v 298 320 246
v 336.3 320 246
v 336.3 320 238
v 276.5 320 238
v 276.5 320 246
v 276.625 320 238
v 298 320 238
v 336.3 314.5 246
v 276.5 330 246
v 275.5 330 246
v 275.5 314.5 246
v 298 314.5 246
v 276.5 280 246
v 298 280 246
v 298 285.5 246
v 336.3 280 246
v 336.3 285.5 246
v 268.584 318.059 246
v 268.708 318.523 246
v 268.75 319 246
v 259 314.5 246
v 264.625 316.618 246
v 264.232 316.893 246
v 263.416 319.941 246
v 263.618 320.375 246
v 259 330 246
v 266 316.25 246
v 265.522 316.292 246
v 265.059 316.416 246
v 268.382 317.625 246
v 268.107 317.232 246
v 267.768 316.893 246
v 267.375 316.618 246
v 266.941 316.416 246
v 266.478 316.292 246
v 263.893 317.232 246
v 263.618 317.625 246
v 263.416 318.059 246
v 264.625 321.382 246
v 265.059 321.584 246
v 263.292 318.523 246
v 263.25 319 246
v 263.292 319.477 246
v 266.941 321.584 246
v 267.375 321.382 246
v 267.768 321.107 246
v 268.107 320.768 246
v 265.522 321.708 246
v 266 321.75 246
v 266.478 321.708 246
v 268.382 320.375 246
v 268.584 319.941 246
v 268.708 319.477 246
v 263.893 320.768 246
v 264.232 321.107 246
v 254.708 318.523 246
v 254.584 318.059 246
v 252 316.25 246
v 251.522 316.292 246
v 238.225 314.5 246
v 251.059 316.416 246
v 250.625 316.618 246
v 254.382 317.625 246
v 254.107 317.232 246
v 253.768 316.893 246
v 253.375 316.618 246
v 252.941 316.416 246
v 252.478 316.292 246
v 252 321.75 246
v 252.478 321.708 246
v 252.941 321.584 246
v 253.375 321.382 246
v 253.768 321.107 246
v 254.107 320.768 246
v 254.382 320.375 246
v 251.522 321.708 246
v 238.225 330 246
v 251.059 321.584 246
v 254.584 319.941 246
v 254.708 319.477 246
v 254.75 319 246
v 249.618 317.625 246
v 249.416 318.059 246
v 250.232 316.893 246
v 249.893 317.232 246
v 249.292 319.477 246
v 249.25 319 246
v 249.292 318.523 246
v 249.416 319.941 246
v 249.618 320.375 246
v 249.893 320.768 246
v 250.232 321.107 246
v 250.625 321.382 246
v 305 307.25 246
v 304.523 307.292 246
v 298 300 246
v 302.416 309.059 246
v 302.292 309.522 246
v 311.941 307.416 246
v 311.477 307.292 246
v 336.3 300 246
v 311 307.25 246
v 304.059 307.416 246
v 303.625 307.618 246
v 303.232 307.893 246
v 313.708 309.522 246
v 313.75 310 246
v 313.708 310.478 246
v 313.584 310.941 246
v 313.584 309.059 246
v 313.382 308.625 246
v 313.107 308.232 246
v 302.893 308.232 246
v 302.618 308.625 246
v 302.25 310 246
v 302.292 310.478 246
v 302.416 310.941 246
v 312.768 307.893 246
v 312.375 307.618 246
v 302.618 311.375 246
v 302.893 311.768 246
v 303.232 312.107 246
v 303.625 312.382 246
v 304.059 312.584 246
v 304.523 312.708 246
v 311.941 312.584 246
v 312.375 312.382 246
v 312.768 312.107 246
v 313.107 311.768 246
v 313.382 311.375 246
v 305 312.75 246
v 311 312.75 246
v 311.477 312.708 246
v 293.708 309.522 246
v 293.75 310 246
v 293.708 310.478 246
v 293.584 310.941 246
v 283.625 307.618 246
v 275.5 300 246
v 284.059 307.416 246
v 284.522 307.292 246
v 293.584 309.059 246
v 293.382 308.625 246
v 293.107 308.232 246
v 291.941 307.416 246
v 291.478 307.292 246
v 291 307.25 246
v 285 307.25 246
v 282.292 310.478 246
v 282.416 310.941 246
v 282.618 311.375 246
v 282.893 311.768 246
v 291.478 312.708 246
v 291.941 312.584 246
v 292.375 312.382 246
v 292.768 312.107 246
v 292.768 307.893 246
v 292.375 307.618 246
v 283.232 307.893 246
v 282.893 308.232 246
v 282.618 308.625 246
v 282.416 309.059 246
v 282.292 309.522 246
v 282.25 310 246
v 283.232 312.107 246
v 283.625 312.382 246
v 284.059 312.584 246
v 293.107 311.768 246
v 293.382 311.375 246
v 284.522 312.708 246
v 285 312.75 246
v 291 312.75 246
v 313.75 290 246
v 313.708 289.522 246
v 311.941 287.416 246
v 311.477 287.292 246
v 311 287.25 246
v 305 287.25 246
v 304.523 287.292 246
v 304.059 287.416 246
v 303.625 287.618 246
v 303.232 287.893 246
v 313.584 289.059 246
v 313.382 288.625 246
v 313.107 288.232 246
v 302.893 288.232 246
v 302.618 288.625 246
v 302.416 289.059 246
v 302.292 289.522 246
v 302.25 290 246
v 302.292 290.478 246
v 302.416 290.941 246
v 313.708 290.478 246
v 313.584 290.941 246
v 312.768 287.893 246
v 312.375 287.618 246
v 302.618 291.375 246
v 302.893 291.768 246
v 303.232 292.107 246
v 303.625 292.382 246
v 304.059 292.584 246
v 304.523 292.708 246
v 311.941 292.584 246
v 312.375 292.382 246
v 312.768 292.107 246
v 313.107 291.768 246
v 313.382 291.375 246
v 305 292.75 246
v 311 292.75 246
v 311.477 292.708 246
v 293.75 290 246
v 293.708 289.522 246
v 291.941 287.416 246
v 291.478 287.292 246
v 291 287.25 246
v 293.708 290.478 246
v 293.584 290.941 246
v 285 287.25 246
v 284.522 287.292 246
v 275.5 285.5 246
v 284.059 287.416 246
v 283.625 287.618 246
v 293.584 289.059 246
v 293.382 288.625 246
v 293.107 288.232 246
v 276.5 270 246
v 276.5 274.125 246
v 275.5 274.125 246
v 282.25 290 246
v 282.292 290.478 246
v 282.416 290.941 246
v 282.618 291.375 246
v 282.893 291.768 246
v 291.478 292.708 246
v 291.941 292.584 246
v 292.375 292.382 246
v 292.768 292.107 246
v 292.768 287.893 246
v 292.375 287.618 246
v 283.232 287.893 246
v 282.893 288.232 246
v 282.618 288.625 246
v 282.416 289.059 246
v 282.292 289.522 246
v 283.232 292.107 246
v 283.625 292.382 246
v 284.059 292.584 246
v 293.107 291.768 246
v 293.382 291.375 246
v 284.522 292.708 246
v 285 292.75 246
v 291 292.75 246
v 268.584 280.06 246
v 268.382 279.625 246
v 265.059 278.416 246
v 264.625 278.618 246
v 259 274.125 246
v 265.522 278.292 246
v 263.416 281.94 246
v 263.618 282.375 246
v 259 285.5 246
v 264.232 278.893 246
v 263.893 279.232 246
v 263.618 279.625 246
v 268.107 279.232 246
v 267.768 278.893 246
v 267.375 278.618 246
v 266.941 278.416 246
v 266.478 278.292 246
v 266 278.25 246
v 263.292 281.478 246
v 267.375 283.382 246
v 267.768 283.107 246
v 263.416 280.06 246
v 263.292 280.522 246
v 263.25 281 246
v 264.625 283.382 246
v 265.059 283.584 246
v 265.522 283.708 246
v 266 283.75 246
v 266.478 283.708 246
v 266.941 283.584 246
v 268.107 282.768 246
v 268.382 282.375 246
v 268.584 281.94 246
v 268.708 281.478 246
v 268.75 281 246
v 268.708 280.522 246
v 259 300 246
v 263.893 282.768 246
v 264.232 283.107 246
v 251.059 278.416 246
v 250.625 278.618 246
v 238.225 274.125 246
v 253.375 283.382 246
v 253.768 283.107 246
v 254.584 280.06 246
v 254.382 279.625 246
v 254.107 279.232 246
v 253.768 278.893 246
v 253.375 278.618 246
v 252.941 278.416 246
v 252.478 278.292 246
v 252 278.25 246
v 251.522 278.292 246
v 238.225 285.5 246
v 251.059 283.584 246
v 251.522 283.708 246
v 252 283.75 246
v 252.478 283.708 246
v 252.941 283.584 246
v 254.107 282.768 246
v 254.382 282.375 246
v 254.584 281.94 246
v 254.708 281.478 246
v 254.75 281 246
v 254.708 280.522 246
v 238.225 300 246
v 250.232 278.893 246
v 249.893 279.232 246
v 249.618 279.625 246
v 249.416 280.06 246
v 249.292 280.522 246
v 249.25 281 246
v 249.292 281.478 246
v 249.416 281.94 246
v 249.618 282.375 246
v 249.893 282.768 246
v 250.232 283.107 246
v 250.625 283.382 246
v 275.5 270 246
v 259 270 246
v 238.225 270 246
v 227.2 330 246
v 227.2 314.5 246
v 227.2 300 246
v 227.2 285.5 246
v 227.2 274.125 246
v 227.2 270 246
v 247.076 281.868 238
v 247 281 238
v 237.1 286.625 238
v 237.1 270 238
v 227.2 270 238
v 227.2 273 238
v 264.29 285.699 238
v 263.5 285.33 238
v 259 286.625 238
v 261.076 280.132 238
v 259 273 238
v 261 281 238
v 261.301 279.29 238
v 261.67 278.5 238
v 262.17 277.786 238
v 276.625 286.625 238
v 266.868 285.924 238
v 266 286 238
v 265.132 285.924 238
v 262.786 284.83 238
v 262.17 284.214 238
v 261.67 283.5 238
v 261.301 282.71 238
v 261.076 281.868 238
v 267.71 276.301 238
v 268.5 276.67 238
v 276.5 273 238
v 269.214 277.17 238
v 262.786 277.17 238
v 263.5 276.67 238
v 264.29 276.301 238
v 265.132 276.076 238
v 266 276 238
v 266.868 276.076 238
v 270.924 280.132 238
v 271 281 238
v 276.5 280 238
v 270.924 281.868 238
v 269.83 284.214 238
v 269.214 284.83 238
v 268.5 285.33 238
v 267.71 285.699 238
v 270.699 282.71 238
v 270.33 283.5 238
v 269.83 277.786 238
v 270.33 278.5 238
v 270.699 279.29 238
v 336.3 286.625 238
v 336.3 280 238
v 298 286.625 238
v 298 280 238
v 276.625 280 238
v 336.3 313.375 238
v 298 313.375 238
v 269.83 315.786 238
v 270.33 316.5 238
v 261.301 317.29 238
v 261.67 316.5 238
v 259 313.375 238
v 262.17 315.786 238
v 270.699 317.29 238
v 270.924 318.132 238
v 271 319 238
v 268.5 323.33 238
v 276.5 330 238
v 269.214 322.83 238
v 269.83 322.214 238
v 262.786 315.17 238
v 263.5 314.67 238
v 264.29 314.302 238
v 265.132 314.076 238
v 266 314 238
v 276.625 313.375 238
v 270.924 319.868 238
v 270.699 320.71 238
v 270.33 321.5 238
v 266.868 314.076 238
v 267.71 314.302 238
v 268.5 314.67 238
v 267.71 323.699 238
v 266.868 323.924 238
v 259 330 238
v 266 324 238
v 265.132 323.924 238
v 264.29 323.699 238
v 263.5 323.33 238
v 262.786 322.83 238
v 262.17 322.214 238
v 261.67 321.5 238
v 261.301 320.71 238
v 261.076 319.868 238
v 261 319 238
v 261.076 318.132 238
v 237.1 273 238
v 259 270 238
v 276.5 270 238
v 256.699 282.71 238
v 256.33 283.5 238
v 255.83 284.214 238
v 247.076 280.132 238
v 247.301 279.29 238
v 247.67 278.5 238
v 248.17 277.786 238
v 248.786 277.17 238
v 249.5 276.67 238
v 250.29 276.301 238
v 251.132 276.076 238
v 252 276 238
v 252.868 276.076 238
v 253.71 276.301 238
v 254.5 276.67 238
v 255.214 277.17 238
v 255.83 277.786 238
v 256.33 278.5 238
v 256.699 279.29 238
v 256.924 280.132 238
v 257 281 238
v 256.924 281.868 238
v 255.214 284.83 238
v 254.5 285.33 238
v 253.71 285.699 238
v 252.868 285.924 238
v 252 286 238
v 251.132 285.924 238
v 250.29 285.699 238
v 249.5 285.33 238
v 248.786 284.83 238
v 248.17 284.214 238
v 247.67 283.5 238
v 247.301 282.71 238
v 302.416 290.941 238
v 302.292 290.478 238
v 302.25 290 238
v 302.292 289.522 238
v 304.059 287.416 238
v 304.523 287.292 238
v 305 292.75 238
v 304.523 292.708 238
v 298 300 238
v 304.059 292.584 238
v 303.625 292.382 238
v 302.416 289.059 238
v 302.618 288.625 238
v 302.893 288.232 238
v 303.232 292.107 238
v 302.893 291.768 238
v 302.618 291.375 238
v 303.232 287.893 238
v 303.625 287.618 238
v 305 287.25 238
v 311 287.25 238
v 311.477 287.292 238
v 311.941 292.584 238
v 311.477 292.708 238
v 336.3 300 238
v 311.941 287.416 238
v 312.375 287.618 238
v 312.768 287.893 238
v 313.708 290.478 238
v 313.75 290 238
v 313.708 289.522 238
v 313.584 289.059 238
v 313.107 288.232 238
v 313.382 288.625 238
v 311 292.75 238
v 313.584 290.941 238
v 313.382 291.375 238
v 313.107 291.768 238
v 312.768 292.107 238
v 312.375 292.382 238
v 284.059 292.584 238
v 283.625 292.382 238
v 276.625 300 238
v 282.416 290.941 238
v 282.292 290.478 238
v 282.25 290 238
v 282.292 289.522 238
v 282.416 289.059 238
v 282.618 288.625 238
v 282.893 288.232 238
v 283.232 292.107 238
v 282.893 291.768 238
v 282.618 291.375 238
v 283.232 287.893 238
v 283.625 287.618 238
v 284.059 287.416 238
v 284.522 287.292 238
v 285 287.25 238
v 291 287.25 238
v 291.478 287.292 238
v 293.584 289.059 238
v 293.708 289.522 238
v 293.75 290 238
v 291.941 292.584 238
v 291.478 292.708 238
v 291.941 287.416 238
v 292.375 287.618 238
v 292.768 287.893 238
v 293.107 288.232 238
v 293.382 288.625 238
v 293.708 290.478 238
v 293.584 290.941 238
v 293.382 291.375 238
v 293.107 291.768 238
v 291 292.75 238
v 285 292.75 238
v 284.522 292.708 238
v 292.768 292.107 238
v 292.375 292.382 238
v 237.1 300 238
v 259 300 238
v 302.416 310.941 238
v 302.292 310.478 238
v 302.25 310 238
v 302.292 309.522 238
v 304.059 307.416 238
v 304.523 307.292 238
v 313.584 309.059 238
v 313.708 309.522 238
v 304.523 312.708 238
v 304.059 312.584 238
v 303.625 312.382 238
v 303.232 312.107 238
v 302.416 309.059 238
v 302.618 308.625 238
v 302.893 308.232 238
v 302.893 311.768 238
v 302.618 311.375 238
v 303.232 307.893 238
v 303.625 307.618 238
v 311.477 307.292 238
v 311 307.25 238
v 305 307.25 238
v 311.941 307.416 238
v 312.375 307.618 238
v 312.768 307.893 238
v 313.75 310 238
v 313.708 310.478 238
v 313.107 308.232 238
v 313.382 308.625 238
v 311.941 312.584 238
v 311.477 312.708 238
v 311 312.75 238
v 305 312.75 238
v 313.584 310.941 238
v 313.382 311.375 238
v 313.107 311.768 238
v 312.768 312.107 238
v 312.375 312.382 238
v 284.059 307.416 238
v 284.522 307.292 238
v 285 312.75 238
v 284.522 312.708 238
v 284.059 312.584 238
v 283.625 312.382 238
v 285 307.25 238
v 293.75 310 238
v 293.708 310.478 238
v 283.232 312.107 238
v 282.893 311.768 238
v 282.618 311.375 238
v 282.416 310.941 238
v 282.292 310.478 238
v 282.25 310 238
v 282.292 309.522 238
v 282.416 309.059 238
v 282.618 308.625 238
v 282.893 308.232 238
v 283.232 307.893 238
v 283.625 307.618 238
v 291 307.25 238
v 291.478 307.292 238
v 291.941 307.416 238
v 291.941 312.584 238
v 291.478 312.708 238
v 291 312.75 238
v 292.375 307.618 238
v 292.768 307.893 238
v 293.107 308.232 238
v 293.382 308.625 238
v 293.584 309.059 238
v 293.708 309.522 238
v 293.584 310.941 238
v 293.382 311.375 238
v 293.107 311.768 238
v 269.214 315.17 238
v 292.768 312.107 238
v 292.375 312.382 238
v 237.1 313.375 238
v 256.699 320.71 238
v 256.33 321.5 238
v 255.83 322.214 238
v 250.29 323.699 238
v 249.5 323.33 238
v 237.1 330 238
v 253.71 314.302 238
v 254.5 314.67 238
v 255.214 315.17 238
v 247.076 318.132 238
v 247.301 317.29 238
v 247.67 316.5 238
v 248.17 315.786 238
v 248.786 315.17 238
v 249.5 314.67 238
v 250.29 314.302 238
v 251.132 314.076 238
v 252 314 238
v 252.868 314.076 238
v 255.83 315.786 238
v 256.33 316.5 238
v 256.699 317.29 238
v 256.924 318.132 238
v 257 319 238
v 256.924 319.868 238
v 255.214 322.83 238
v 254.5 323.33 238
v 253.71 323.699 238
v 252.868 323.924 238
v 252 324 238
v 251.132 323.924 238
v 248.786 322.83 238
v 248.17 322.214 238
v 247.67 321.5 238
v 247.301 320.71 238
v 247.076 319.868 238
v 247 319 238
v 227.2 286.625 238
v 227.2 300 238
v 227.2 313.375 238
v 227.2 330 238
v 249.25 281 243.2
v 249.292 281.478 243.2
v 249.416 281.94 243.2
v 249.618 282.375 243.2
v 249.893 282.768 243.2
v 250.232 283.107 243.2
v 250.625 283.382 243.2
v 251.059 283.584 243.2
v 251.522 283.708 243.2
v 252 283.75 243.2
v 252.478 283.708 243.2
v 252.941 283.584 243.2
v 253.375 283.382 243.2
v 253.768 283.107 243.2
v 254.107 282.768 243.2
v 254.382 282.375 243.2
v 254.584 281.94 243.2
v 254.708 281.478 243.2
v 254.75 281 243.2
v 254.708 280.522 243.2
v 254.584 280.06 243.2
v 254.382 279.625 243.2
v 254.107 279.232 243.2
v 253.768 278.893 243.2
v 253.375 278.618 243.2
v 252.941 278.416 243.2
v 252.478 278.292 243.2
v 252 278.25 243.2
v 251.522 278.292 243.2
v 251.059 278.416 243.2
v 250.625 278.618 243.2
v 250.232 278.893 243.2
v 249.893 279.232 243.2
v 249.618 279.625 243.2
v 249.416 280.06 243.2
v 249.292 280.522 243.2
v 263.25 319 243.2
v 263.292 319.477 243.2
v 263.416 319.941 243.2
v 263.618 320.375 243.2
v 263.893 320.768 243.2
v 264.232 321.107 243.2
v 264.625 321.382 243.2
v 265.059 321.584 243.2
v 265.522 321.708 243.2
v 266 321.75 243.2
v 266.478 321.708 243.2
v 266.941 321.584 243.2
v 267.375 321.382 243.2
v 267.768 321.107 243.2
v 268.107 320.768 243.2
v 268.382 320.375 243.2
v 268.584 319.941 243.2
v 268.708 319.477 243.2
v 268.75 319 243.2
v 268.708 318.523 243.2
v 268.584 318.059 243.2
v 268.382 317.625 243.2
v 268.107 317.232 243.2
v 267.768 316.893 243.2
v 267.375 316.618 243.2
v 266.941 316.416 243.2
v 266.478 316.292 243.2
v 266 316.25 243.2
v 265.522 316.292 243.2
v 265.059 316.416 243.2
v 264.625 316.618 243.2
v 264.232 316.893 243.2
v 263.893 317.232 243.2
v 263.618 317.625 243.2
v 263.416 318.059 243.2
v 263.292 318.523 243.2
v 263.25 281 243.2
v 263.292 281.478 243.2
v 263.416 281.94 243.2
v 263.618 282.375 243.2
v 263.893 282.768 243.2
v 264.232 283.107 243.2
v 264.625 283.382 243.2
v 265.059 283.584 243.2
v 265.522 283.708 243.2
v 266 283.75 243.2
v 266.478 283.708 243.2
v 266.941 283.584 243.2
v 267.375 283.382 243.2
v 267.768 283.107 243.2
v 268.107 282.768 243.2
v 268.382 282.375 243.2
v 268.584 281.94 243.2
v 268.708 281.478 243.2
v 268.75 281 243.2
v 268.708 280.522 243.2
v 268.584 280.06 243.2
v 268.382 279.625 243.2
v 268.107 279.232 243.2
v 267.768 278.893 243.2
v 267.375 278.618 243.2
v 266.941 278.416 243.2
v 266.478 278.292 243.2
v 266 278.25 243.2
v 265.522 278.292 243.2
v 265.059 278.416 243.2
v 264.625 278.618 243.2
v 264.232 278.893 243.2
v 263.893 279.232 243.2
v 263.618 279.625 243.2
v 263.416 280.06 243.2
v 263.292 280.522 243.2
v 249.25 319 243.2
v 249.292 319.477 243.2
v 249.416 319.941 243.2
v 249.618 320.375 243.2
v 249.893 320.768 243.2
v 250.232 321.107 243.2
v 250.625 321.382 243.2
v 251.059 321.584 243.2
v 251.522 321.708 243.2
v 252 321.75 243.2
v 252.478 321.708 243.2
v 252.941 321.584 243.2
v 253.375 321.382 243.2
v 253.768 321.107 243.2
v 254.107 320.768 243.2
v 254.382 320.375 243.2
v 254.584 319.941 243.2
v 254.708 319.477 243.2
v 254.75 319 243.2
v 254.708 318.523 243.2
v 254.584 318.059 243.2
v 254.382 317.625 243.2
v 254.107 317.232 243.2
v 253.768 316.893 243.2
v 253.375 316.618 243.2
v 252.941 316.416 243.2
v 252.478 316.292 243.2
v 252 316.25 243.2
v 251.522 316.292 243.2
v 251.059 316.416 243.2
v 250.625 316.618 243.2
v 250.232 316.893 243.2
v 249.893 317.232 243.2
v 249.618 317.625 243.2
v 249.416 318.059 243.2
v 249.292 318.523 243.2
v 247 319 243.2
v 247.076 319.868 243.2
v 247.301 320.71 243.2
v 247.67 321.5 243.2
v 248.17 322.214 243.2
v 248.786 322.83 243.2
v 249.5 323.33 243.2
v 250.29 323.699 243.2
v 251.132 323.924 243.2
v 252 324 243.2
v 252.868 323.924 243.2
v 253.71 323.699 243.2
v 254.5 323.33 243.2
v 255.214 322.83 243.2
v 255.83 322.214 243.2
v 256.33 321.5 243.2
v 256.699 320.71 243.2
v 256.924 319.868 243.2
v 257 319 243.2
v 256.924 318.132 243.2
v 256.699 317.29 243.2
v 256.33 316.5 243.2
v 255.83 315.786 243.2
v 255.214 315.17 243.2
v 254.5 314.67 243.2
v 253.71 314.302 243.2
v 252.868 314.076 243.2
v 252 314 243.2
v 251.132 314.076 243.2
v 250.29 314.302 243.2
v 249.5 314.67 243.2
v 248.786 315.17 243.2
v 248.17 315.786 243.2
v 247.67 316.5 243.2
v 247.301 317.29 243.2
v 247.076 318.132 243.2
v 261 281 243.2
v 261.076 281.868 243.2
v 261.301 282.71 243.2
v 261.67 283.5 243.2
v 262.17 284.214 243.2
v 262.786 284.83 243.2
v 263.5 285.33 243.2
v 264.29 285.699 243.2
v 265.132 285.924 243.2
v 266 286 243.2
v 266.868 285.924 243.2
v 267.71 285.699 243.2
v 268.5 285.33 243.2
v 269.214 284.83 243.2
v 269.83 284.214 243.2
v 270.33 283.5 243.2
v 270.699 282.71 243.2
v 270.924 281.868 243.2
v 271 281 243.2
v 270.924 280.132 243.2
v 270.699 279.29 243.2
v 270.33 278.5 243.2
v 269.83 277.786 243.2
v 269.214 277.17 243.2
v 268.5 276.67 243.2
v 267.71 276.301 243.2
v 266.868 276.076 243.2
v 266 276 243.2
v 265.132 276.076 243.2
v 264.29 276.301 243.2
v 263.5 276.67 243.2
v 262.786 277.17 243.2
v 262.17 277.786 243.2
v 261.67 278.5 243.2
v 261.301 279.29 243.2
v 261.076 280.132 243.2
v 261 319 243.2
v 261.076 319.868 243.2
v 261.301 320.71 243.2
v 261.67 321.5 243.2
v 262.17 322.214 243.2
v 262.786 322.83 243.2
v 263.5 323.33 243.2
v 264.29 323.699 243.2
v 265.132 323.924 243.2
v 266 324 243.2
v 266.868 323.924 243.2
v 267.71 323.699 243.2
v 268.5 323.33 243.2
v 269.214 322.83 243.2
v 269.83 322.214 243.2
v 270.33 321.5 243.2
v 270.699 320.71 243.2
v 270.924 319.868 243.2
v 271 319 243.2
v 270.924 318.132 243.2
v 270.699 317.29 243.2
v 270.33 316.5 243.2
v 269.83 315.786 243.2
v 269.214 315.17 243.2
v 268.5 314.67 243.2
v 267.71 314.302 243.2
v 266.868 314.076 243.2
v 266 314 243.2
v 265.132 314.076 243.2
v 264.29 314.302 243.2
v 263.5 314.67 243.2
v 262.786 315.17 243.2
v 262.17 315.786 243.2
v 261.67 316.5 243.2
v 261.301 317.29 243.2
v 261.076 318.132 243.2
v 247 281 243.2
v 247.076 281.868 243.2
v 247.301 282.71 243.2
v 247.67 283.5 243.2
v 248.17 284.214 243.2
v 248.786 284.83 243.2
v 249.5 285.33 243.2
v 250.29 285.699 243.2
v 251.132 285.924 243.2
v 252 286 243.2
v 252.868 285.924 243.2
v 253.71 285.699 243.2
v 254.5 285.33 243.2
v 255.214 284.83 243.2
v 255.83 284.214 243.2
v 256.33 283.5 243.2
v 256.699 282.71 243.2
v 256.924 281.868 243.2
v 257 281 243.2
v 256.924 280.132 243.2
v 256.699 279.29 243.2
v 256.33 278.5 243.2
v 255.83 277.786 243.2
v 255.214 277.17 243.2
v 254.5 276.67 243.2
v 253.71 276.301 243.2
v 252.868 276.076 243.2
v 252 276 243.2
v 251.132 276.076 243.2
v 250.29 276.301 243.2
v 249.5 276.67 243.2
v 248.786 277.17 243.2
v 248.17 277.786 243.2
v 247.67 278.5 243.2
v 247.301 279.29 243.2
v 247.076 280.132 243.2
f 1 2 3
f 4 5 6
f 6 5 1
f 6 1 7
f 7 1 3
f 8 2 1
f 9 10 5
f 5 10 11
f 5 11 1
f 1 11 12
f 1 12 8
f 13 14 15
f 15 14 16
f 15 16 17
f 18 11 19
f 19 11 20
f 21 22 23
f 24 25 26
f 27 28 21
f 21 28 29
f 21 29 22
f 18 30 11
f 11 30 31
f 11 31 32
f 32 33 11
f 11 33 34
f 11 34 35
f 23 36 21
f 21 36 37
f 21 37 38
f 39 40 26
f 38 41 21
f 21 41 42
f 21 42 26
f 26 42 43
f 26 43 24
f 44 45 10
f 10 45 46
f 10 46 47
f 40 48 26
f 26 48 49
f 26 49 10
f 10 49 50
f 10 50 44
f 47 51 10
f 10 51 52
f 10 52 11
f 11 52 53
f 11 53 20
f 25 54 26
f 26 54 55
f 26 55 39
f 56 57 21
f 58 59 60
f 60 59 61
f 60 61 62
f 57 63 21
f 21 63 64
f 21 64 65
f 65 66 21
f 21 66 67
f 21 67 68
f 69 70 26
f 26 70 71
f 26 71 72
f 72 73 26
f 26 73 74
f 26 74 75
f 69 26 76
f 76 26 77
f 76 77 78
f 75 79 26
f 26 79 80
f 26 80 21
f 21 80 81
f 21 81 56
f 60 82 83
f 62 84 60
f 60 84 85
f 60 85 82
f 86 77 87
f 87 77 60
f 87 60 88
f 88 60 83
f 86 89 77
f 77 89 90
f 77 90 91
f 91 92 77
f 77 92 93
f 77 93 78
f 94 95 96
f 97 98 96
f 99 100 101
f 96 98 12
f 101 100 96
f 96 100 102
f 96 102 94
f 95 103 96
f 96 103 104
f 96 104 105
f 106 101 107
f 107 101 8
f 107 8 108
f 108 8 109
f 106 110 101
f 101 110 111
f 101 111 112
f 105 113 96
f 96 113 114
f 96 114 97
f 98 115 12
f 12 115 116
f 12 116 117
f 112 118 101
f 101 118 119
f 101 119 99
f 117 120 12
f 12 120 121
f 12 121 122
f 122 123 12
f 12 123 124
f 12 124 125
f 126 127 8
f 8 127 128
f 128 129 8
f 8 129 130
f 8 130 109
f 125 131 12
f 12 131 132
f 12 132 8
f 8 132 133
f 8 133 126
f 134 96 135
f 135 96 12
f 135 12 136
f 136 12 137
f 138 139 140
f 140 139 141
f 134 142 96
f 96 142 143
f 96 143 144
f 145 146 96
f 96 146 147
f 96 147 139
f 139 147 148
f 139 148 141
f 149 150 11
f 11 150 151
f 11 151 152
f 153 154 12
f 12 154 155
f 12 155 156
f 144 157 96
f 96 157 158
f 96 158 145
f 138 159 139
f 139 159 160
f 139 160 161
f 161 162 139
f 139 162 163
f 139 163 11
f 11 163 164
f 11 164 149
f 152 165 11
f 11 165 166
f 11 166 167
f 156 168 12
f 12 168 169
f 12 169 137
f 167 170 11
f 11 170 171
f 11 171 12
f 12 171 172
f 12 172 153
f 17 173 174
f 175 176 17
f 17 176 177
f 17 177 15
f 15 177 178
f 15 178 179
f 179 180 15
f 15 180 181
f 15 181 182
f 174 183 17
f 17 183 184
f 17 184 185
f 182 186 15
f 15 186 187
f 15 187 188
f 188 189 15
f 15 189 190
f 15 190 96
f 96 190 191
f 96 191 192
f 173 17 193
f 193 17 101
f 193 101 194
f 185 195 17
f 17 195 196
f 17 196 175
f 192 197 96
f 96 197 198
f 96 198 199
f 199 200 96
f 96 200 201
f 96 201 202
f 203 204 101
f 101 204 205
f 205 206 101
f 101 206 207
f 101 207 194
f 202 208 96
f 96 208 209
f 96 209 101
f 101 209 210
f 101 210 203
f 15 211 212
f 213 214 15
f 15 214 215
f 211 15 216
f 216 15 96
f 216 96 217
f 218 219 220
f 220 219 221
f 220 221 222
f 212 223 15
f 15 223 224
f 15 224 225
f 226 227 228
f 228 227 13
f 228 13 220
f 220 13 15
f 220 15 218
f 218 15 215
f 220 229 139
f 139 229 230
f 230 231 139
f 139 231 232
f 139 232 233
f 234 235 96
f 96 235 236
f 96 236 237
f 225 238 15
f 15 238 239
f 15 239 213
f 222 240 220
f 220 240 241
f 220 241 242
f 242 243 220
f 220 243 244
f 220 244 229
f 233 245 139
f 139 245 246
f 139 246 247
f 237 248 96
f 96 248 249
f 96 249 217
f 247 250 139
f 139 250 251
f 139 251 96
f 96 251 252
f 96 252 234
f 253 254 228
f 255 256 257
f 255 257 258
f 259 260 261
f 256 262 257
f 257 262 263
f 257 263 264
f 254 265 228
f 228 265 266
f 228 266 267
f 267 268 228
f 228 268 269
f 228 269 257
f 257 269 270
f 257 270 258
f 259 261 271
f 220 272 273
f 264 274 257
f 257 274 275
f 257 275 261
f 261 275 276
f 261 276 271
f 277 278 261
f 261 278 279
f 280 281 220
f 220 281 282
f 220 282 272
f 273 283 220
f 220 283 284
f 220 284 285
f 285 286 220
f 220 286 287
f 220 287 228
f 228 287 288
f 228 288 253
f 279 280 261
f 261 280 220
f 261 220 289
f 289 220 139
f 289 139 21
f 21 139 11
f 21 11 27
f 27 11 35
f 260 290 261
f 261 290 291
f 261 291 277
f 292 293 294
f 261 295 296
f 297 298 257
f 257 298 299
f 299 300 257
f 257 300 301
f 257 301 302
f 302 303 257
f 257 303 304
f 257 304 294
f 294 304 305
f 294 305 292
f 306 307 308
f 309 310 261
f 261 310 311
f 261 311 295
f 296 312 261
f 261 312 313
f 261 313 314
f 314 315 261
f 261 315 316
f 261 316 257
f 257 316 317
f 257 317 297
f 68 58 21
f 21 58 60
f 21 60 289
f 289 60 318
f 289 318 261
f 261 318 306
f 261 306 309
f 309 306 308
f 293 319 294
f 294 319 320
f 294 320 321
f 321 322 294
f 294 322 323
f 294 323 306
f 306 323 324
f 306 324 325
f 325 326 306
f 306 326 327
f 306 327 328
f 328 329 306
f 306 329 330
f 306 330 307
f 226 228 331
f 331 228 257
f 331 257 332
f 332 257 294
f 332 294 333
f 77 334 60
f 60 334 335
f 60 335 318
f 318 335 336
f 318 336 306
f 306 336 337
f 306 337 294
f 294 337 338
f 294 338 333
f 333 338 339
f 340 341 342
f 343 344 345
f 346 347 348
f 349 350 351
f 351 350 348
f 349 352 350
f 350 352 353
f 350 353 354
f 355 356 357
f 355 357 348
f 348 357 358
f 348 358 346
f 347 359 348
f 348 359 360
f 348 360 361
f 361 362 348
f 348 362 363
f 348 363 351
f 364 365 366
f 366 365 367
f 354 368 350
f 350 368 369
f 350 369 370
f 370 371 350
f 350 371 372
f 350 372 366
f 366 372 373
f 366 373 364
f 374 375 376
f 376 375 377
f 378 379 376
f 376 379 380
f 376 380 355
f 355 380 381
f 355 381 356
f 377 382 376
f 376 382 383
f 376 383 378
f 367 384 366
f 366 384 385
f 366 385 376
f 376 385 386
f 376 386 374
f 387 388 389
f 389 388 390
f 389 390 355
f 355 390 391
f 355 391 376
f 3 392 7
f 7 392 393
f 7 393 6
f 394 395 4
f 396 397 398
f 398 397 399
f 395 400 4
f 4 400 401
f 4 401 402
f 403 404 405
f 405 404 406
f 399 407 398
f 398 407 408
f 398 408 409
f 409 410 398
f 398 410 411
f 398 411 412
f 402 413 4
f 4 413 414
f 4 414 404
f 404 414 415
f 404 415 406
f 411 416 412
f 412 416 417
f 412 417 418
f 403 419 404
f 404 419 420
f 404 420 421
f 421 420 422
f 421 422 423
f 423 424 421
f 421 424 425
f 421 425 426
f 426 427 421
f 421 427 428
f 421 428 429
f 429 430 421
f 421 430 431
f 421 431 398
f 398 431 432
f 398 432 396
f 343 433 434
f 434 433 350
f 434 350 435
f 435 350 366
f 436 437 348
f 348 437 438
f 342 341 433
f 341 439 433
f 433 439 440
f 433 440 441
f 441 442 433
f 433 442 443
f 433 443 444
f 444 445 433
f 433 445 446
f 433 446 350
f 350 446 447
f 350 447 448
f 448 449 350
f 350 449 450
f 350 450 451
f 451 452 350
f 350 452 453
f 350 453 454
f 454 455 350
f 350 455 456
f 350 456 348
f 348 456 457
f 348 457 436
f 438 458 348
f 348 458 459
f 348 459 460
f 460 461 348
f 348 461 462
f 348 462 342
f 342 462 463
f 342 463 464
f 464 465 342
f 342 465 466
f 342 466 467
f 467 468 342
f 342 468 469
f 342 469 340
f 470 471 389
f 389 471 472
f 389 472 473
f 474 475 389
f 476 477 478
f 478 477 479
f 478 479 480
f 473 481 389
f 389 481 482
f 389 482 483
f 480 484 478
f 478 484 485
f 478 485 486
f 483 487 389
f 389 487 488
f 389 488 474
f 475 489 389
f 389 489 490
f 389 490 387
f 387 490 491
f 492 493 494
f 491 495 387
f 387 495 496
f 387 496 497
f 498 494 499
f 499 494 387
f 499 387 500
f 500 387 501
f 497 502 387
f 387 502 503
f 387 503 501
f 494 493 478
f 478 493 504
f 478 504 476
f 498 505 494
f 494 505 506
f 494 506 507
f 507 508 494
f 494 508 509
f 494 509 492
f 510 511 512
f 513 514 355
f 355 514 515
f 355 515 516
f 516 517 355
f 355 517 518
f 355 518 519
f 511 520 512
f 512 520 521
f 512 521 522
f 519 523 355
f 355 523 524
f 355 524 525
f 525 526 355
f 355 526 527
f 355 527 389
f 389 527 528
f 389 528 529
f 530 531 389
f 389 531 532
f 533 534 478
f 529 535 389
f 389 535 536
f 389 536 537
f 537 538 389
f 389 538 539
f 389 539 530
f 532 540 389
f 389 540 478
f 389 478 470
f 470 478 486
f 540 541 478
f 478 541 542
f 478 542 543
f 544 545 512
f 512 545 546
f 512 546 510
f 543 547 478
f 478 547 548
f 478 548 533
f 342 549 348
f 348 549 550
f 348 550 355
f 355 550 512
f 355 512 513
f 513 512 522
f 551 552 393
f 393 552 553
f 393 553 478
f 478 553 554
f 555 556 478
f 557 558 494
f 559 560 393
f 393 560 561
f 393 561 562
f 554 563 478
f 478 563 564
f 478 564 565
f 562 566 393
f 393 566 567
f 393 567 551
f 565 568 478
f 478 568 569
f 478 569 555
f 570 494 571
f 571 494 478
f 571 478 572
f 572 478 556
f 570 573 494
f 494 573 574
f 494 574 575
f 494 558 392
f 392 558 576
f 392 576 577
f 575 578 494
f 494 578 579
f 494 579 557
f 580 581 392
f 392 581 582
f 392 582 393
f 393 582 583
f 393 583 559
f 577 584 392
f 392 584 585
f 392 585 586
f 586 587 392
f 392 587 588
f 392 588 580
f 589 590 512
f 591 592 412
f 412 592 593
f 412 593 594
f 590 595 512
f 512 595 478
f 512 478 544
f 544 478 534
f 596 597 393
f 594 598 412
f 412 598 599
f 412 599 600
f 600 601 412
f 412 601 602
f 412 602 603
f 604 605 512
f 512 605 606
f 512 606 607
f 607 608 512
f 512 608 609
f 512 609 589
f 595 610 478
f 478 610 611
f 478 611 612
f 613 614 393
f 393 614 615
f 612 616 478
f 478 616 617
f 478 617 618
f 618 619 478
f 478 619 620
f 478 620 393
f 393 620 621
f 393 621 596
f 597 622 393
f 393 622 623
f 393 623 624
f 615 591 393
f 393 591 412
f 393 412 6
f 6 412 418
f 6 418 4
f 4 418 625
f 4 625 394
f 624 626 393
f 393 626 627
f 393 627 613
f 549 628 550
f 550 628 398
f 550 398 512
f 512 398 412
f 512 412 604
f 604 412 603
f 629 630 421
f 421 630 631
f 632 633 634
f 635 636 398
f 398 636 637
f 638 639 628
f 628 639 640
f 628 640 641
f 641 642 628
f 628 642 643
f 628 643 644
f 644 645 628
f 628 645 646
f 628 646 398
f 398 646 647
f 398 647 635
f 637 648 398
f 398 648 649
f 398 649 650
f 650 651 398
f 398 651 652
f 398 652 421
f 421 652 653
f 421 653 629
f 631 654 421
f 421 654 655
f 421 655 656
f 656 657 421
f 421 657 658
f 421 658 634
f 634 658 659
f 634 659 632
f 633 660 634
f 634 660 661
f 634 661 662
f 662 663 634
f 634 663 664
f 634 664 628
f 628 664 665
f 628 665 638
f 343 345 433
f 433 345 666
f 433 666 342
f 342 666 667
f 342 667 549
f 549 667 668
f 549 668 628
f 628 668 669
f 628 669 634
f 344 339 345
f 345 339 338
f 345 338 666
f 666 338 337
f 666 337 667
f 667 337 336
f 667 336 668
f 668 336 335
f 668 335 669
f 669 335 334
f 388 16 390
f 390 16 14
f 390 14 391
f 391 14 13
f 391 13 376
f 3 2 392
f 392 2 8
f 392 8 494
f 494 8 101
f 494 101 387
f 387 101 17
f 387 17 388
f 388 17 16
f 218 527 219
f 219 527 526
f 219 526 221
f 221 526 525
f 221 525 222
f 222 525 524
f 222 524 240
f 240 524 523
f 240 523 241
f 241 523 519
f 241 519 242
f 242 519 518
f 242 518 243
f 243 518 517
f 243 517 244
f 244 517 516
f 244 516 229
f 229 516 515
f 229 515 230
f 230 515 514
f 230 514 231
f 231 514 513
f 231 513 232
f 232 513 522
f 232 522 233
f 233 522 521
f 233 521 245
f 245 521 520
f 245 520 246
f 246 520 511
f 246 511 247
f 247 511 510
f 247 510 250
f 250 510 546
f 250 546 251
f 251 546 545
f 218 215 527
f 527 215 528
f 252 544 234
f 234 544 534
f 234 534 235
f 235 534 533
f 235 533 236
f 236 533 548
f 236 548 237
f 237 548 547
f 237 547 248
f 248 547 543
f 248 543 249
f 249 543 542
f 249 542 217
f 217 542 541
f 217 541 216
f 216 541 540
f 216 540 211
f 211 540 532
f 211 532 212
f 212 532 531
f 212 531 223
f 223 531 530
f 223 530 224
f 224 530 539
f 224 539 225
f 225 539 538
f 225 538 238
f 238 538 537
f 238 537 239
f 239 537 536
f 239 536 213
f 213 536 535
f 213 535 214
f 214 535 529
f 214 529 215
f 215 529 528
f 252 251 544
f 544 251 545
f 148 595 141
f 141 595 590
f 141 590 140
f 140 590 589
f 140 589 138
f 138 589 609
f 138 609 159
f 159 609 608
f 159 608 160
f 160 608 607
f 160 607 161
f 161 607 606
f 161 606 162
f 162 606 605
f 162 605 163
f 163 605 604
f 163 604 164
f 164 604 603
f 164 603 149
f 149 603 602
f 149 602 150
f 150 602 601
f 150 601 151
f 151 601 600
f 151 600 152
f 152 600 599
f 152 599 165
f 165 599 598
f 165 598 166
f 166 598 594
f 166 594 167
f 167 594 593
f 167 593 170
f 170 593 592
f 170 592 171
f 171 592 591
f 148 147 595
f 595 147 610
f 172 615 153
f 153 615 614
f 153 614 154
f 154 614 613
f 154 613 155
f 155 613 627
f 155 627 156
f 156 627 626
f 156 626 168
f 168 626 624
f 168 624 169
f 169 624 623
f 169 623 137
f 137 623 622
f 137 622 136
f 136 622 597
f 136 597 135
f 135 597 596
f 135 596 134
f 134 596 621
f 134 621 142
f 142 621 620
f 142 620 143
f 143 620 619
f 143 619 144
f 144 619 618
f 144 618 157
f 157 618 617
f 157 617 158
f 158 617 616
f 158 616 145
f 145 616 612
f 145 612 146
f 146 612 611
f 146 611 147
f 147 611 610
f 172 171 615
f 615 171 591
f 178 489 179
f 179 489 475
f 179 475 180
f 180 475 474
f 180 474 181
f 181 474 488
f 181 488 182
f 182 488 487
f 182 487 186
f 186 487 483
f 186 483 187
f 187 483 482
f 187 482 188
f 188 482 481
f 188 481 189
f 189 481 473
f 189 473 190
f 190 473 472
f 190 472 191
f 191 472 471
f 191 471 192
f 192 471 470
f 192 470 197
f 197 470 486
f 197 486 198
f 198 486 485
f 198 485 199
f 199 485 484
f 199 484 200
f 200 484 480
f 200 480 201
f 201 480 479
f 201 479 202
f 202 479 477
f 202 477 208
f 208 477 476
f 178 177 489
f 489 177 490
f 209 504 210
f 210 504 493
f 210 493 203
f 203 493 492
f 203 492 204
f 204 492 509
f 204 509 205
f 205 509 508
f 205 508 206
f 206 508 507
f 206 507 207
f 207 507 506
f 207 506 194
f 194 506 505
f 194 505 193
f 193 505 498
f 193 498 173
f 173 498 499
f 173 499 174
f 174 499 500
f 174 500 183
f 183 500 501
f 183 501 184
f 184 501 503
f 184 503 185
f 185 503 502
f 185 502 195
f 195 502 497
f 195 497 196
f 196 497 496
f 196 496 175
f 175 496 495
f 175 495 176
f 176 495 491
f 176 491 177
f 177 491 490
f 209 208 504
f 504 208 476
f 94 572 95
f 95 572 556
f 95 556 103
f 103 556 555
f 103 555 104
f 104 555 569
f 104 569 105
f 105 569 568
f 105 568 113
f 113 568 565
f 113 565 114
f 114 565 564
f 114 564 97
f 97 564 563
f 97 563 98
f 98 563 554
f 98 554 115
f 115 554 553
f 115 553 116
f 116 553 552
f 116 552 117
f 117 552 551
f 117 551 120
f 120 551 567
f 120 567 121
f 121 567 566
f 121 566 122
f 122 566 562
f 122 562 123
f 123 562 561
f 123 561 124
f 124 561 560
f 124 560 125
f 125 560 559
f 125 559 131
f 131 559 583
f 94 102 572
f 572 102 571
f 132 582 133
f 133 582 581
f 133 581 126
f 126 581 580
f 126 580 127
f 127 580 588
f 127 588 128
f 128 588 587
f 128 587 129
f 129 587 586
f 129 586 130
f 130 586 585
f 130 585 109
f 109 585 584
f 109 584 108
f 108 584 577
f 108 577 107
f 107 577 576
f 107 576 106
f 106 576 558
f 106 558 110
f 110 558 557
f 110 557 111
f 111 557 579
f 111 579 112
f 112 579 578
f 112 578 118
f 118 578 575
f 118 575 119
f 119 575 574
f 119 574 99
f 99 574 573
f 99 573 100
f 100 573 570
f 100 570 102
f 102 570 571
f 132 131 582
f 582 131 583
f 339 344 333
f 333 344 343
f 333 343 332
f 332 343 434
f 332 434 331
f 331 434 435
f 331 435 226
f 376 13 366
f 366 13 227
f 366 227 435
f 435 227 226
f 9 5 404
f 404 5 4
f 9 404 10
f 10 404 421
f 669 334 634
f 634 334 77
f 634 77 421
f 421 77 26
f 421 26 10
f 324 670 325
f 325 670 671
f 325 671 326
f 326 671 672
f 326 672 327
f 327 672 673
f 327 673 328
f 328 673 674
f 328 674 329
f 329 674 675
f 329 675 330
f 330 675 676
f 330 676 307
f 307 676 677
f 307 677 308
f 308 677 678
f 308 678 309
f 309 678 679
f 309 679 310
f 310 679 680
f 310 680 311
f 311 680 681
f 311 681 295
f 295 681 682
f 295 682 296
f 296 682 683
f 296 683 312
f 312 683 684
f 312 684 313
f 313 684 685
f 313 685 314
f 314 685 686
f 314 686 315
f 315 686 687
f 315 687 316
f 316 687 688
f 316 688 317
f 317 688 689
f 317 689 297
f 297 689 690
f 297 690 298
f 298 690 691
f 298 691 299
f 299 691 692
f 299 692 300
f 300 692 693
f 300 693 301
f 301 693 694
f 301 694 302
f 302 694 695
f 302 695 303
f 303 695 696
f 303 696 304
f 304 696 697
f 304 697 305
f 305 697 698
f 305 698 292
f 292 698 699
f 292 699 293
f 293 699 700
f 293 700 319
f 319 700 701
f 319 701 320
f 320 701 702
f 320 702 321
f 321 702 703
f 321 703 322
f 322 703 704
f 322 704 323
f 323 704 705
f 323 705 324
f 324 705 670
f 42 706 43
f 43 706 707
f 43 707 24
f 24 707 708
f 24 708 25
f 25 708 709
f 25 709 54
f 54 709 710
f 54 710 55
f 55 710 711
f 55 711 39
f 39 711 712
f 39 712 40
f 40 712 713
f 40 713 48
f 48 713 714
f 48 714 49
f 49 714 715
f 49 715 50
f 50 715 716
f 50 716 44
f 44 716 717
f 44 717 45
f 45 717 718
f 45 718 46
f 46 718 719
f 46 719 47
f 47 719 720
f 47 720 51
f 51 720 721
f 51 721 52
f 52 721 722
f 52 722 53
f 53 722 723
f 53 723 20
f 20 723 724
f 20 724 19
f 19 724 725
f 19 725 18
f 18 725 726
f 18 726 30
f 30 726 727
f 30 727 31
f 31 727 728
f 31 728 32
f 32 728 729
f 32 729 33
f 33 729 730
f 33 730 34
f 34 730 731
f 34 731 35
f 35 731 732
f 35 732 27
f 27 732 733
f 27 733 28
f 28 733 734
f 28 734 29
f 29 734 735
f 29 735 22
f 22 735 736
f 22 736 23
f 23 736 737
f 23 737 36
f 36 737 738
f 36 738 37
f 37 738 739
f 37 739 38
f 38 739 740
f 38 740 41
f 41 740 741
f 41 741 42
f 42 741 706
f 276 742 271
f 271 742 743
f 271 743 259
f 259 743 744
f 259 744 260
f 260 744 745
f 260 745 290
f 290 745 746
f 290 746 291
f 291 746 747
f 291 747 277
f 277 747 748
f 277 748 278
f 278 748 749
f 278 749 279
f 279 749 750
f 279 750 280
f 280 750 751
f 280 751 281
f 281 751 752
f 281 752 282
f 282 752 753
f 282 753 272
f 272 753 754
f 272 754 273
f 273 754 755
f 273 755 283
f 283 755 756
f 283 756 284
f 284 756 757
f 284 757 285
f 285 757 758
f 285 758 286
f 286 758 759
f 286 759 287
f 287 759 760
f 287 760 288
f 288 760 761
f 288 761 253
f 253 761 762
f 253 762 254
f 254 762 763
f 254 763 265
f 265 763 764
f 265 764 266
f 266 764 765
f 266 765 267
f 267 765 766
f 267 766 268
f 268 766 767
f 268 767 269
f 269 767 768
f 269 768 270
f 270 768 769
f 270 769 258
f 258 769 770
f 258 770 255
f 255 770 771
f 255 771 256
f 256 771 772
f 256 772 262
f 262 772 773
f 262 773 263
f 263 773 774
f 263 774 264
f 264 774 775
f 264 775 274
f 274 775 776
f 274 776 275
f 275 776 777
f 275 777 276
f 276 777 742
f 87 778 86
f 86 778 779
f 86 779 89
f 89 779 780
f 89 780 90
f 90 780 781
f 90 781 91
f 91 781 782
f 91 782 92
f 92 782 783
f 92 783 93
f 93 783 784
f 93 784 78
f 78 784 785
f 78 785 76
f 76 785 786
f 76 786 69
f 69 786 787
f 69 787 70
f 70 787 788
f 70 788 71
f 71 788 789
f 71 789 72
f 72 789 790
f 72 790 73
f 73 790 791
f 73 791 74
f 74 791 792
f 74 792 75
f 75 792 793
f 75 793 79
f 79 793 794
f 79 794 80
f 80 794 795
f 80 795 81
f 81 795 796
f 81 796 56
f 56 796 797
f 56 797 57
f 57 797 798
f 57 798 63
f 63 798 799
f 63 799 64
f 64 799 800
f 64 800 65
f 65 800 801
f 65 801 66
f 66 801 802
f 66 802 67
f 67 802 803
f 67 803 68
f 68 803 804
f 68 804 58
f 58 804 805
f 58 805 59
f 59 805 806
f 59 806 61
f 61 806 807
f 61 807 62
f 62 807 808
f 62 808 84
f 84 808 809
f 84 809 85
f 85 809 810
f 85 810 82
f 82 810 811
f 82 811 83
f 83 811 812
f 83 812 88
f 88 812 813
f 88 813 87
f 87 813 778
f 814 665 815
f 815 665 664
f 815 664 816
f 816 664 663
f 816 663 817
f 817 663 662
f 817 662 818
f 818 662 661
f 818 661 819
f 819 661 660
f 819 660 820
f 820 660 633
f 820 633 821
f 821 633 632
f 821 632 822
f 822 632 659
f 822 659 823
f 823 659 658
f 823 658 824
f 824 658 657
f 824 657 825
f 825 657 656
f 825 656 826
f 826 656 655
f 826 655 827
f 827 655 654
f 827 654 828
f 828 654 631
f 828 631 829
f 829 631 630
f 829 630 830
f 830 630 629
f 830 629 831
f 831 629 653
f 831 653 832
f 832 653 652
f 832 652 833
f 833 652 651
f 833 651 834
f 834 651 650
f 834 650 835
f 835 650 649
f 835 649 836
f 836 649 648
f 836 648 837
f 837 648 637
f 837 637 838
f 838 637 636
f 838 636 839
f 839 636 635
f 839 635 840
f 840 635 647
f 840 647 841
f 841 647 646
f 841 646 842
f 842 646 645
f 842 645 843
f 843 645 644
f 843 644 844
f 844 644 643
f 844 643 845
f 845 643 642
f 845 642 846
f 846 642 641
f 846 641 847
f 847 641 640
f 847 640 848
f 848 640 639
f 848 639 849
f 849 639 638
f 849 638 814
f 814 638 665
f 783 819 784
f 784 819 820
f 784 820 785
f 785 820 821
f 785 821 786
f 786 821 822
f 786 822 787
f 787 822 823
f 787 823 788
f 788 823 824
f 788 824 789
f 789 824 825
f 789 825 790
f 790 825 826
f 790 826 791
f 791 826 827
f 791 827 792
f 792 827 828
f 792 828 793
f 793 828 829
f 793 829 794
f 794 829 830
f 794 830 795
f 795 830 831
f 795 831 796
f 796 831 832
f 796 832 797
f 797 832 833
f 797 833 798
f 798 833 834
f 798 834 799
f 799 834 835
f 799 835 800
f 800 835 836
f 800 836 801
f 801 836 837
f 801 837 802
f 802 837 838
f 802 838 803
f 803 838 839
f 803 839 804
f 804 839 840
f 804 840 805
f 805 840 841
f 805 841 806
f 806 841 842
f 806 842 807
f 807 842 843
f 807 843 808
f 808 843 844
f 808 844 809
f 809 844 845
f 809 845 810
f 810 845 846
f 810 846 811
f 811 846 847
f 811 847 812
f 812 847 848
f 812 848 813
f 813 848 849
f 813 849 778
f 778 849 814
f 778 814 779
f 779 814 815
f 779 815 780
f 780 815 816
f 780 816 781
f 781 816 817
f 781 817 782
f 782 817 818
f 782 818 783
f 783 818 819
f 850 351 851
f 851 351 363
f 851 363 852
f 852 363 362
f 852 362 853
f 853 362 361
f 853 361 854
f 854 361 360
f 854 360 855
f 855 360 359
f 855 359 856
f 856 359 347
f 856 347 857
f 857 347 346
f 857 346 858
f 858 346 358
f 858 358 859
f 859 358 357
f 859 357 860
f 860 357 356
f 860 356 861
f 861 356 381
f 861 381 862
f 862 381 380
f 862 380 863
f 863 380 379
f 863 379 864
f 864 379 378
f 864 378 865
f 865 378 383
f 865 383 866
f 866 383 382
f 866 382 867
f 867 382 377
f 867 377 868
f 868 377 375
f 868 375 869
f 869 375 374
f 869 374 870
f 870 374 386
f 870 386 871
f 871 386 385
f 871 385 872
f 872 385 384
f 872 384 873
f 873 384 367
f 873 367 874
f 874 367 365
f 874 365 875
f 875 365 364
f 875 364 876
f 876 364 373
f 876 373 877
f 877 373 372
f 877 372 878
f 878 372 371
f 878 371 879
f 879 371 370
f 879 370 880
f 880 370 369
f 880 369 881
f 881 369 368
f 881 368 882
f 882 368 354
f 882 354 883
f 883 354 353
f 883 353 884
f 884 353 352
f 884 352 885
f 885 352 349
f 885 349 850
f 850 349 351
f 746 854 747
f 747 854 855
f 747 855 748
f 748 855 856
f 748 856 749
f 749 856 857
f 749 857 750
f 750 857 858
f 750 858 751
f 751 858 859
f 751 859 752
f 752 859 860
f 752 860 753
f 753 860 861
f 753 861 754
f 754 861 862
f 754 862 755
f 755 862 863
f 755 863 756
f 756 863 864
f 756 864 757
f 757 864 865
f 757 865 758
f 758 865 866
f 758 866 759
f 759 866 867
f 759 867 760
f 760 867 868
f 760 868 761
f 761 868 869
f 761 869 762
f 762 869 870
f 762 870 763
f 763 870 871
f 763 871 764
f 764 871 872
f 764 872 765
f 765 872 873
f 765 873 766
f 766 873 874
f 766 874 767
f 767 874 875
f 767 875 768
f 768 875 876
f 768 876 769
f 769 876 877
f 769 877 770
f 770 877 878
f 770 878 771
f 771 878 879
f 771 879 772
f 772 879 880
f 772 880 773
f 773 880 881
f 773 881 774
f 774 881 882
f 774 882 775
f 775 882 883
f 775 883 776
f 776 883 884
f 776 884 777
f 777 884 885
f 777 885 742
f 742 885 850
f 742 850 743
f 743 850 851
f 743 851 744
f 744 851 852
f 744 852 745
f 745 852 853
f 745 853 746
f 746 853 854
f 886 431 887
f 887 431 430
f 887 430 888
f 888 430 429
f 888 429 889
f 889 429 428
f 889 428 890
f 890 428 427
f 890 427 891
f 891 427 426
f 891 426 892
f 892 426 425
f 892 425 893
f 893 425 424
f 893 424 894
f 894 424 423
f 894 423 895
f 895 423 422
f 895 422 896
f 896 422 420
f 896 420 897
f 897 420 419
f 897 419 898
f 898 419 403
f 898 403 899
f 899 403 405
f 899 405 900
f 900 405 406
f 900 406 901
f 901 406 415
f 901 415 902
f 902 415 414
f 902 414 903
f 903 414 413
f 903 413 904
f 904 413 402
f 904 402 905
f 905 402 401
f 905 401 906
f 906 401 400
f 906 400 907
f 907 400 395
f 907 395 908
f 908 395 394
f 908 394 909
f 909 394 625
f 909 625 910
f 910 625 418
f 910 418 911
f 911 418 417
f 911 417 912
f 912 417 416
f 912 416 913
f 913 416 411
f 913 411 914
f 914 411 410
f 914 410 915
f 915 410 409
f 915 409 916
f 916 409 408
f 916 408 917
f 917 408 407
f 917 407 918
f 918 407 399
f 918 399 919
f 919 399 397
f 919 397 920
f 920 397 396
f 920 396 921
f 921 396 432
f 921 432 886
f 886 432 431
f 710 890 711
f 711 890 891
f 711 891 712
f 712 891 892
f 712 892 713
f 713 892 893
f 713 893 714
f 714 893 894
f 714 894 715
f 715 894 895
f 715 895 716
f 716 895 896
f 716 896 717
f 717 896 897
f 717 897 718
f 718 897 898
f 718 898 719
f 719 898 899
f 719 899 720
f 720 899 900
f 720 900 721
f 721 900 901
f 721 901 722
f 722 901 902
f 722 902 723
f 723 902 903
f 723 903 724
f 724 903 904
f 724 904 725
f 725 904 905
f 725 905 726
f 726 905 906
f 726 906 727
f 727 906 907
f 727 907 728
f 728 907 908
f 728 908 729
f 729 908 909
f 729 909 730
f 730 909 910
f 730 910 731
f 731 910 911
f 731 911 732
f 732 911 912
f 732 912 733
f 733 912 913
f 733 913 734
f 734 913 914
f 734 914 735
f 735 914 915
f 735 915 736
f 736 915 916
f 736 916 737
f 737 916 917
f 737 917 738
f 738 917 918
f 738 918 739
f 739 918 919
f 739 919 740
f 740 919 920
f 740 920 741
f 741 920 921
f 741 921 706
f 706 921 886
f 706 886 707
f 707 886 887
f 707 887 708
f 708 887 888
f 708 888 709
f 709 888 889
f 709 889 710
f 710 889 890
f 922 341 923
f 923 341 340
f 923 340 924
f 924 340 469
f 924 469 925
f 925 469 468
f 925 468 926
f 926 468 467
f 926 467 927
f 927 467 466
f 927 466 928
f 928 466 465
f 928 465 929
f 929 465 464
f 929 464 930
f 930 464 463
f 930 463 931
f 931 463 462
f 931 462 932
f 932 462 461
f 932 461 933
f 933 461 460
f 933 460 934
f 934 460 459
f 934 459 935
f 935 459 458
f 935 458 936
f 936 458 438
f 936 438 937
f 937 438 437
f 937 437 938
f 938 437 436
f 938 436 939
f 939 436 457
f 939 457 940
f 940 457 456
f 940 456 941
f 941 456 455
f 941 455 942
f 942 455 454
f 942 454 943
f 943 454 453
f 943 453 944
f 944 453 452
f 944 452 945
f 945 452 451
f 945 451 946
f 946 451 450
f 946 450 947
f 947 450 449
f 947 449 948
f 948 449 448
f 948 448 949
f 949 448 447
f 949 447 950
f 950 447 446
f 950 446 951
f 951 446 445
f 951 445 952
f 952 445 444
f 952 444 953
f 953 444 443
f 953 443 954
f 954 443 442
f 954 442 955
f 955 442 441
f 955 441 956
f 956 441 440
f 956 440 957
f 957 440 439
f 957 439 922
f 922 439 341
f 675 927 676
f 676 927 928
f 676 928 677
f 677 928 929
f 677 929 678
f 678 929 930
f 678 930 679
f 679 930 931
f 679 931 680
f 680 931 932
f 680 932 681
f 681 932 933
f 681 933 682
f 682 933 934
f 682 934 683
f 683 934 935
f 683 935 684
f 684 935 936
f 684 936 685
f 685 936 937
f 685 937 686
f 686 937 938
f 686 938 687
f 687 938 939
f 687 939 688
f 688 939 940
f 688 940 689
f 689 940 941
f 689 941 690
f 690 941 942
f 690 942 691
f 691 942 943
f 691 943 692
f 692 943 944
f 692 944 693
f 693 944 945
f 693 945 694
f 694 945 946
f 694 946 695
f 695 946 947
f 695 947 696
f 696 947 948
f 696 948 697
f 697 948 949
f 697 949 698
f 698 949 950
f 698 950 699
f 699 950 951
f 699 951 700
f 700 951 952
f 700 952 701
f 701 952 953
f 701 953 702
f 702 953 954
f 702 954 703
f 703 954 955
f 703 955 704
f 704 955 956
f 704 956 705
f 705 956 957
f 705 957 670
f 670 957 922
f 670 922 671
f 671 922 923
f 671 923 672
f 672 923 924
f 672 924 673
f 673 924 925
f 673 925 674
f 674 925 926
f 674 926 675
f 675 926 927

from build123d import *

# Parameters (mm, degrees)
SKETCH1_W           = 109.1
SKETCH1_H           = 40
BOSS_EXTRUDE1_DEPTH = 8
SKETCH2_W           = 49.3
SKETCH2_H           = 10
BOSS_EXTRUDE2_DEPTH = 8
SKETCH3_W           = 49.3
SKETCH3_H           = 10
BOSS_EXTRUDE3_DEPTH = 8
SKETCH4_R           = 2.75
CUT_EXTRUDE1_DEPTH  = 8
SKETCH5_R           = 5
CUT_EXTRUDE2_DEPTH  = 5.2


with BuildPart() as part:
    # Sketch1 → Boss-Extrude1 (new body)
    with BuildSketch(Plane.XY.offset(238)):
        with Locations((281.75, 300)):
            Rectangle(SKETCH1_W, SKETCH1_H)
        with BuildLine():
            Line((285, 287.25), (291, 287.25))
            ThreePointArc((291, 287.25), (293.75, 290), (291, 292.75))
            Line((291, 292.75), (285, 292.75))
            ThreePointArc((285, 292.75), (282.25, 290), (285, 287.25))
        make_face(mode=Mode.SUBTRACT)
        with BuildLine():
            Line((285, 307.25), (291, 307.25))
            ThreePointArc((291, 307.25), (293.75, 310), (291, 312.75))
            Line((291, 312.75), (285, 312.75))
            ThreePointArc((285, 312.75), (282.25, 310), (285, 307.25))
        make_face(mode=Mode.SUBTRACT)
        with BuildLine():
            Line((305, 287.25), (311, 287.25))
            ThreePointArc((311, 287.25), (313.75, 290), (311, 292.75))
            Line((311, 292.75), (305, 292.75))
            ThreePointArc((305, 292.75), (302.25, 290), (305, 287.25))
        make_face(mode=Mode.SUBTRACT)
        with BuildLine():
            Line((305, 307.25), (311, 307.25))
            ThreePointArc((311, 307.25), (313.75, 310), (311, 312.75))
            Line((311, 312.75), (305, 312.75))
            ThreePointArc((305, 312.75), (302.25, 310), (305, 307.25))
        make_face(mode=Mode.SUBTRACT)
    extrude(amount=BOSS_EXTRUDE1_DEPTH)

    # Sketch2 → Boss-Extrude2 (add)
    with BuildSketch(Plane.XY.offset(238)):
        with Locations((251.85, 275)):
            Rectangle(SKETCH2_W, SKETCH2_H)
    extrude(amount=BOSS_EXTRUDE2_DEPTH)

    # Sketch3 → Boss-Extrude3 (add)
    with BuildSketch(Plane.XY.offset(238)):
        with Locations((251.85, 325)):
            Rectangle(SKETCH3_W, SKETCH3_H)
    extrude(amount=BOSS_EXTRUDE3_DEPTH)

    # Sketch4 → Cut-Extrude1 (cut)
    with BuildSketch(Plane.XY.offset(238)):
        with Locations((252, 281)):
            Circle(SKETCH4_R)
        with Locations((252, 319)):
            Circle(SKETCH4_R)
        with Locations((266, 281)):
            Circle(SKETCH4_R)
        with Locations((266, 319)):
            Circle(SKETCH4_R)
    extrude(amount=CUT_EXTRUDE1_DEPTH, mode=Mode.SUBTRACT)

    # Sketch5 → Cut-Extrude2 (cut)
    with BuildSketch(Plane.XY.offset(238)):
        with Locations((252, 281)):
            Circle(SKETCH5_R)
        with Locations((252, 319)):
            Circle(SKETCH5_R)
        with Locations((266, 281)):
            Circle(SKETCH5_R)
        with Locations((266, 319)):
            Circle(SKETCH5_R)
    extrude(amount=CUT_EXTRUDE2_DEPTH, mode=Mode.SUBTRACT)


solid = part.part
